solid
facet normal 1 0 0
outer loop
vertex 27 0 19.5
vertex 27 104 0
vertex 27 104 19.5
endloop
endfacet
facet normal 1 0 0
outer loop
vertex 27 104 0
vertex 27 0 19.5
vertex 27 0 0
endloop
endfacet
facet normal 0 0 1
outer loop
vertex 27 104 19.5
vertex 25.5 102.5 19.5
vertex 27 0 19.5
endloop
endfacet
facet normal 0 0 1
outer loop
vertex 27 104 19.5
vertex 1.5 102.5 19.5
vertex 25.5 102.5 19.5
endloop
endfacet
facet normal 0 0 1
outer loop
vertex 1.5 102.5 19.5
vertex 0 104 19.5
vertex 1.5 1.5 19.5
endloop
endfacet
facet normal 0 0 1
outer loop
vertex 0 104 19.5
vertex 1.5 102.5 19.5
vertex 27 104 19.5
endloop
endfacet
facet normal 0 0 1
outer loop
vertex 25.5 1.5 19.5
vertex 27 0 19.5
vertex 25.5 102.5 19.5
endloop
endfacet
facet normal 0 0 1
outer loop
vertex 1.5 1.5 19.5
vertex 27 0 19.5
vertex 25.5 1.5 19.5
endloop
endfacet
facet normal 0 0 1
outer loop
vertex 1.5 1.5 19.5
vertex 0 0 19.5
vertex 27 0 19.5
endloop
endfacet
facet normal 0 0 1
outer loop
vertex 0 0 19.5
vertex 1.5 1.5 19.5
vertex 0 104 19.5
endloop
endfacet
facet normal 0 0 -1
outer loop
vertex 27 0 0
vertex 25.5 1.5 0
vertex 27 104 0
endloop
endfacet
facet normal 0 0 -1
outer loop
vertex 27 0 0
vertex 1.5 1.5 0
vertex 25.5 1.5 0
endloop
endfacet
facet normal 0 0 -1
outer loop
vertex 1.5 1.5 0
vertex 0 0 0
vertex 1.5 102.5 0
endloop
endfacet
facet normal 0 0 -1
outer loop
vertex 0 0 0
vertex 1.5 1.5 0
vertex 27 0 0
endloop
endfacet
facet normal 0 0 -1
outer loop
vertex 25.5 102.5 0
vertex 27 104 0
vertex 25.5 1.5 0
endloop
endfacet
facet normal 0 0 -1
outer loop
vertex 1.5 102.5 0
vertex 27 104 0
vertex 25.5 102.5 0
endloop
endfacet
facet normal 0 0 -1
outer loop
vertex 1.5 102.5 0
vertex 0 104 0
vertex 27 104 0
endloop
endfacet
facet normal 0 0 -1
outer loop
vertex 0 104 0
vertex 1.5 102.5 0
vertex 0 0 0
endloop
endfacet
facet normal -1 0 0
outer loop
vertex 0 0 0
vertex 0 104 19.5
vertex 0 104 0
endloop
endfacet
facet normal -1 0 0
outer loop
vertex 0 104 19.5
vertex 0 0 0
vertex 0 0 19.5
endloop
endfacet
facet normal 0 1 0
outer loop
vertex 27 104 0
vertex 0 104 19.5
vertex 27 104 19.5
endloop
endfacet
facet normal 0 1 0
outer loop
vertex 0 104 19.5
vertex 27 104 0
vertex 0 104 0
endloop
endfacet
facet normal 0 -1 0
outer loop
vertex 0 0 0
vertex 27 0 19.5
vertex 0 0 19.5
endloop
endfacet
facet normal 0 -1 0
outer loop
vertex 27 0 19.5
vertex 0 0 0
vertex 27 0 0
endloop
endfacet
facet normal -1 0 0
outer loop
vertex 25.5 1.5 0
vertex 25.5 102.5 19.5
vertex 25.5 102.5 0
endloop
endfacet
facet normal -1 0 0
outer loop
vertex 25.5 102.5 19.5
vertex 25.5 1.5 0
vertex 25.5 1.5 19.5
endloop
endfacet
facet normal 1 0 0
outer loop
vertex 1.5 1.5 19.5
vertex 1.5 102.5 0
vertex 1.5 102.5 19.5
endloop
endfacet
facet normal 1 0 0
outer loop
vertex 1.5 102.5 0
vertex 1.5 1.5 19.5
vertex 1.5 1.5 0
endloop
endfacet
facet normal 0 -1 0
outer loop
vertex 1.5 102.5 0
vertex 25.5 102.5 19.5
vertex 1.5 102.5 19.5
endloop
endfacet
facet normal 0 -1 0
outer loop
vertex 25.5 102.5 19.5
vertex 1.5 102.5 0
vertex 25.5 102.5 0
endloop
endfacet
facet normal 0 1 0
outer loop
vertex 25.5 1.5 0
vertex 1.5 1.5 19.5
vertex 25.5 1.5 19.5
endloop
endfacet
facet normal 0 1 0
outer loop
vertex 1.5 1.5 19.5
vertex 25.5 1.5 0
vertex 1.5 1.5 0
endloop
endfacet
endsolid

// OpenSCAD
include <boardgame_insert_toolkit_lib.2.scad>;

// determines whether lids are output.
g_b_print_lid = true;

// determines whether boxes are output.
g_b_print_box = false; 

// Focus on one box
g_isolated_print_box = ""; 

// Used to visualize how all of the boxes fit together. 
g_b_visualization = false;          
        
// this is the outer wall thickness. 
//Default = 1.5mm
g_wall_thickness = 1.5;

// The tolerance value is extra space put between planes of the lid and box that fit together.
// Increase the tolerance to loosen the fit and decrease it to tighten it.
//
// Note that the tolerance is applied exclusively to the lid.
// So if the lid is too tight or too loose, change this value ( up for looser fit, down for tighter fit ) and 
// you only need to reprint the lid.
// 
// The exception is the stackable box, where the bottom of the box is the lid of the box below,
// in which case the tolerance also affects that box bottom.
//
g_tolerance = 0.15;

// This adjusts the position of the lid detents downward. 
// The larger the value, the bigger the gap between the lid and the box.
g_tolerance_detents_pos = 0.1;

data =
[  

    [   "bottom spacer",
        [
            [ BOX_SIZE_XYZ,[27, 104, 19.5] ],
            [ TYPE, SPACER]
                          
        ]
    ],
];


MakeAll();
